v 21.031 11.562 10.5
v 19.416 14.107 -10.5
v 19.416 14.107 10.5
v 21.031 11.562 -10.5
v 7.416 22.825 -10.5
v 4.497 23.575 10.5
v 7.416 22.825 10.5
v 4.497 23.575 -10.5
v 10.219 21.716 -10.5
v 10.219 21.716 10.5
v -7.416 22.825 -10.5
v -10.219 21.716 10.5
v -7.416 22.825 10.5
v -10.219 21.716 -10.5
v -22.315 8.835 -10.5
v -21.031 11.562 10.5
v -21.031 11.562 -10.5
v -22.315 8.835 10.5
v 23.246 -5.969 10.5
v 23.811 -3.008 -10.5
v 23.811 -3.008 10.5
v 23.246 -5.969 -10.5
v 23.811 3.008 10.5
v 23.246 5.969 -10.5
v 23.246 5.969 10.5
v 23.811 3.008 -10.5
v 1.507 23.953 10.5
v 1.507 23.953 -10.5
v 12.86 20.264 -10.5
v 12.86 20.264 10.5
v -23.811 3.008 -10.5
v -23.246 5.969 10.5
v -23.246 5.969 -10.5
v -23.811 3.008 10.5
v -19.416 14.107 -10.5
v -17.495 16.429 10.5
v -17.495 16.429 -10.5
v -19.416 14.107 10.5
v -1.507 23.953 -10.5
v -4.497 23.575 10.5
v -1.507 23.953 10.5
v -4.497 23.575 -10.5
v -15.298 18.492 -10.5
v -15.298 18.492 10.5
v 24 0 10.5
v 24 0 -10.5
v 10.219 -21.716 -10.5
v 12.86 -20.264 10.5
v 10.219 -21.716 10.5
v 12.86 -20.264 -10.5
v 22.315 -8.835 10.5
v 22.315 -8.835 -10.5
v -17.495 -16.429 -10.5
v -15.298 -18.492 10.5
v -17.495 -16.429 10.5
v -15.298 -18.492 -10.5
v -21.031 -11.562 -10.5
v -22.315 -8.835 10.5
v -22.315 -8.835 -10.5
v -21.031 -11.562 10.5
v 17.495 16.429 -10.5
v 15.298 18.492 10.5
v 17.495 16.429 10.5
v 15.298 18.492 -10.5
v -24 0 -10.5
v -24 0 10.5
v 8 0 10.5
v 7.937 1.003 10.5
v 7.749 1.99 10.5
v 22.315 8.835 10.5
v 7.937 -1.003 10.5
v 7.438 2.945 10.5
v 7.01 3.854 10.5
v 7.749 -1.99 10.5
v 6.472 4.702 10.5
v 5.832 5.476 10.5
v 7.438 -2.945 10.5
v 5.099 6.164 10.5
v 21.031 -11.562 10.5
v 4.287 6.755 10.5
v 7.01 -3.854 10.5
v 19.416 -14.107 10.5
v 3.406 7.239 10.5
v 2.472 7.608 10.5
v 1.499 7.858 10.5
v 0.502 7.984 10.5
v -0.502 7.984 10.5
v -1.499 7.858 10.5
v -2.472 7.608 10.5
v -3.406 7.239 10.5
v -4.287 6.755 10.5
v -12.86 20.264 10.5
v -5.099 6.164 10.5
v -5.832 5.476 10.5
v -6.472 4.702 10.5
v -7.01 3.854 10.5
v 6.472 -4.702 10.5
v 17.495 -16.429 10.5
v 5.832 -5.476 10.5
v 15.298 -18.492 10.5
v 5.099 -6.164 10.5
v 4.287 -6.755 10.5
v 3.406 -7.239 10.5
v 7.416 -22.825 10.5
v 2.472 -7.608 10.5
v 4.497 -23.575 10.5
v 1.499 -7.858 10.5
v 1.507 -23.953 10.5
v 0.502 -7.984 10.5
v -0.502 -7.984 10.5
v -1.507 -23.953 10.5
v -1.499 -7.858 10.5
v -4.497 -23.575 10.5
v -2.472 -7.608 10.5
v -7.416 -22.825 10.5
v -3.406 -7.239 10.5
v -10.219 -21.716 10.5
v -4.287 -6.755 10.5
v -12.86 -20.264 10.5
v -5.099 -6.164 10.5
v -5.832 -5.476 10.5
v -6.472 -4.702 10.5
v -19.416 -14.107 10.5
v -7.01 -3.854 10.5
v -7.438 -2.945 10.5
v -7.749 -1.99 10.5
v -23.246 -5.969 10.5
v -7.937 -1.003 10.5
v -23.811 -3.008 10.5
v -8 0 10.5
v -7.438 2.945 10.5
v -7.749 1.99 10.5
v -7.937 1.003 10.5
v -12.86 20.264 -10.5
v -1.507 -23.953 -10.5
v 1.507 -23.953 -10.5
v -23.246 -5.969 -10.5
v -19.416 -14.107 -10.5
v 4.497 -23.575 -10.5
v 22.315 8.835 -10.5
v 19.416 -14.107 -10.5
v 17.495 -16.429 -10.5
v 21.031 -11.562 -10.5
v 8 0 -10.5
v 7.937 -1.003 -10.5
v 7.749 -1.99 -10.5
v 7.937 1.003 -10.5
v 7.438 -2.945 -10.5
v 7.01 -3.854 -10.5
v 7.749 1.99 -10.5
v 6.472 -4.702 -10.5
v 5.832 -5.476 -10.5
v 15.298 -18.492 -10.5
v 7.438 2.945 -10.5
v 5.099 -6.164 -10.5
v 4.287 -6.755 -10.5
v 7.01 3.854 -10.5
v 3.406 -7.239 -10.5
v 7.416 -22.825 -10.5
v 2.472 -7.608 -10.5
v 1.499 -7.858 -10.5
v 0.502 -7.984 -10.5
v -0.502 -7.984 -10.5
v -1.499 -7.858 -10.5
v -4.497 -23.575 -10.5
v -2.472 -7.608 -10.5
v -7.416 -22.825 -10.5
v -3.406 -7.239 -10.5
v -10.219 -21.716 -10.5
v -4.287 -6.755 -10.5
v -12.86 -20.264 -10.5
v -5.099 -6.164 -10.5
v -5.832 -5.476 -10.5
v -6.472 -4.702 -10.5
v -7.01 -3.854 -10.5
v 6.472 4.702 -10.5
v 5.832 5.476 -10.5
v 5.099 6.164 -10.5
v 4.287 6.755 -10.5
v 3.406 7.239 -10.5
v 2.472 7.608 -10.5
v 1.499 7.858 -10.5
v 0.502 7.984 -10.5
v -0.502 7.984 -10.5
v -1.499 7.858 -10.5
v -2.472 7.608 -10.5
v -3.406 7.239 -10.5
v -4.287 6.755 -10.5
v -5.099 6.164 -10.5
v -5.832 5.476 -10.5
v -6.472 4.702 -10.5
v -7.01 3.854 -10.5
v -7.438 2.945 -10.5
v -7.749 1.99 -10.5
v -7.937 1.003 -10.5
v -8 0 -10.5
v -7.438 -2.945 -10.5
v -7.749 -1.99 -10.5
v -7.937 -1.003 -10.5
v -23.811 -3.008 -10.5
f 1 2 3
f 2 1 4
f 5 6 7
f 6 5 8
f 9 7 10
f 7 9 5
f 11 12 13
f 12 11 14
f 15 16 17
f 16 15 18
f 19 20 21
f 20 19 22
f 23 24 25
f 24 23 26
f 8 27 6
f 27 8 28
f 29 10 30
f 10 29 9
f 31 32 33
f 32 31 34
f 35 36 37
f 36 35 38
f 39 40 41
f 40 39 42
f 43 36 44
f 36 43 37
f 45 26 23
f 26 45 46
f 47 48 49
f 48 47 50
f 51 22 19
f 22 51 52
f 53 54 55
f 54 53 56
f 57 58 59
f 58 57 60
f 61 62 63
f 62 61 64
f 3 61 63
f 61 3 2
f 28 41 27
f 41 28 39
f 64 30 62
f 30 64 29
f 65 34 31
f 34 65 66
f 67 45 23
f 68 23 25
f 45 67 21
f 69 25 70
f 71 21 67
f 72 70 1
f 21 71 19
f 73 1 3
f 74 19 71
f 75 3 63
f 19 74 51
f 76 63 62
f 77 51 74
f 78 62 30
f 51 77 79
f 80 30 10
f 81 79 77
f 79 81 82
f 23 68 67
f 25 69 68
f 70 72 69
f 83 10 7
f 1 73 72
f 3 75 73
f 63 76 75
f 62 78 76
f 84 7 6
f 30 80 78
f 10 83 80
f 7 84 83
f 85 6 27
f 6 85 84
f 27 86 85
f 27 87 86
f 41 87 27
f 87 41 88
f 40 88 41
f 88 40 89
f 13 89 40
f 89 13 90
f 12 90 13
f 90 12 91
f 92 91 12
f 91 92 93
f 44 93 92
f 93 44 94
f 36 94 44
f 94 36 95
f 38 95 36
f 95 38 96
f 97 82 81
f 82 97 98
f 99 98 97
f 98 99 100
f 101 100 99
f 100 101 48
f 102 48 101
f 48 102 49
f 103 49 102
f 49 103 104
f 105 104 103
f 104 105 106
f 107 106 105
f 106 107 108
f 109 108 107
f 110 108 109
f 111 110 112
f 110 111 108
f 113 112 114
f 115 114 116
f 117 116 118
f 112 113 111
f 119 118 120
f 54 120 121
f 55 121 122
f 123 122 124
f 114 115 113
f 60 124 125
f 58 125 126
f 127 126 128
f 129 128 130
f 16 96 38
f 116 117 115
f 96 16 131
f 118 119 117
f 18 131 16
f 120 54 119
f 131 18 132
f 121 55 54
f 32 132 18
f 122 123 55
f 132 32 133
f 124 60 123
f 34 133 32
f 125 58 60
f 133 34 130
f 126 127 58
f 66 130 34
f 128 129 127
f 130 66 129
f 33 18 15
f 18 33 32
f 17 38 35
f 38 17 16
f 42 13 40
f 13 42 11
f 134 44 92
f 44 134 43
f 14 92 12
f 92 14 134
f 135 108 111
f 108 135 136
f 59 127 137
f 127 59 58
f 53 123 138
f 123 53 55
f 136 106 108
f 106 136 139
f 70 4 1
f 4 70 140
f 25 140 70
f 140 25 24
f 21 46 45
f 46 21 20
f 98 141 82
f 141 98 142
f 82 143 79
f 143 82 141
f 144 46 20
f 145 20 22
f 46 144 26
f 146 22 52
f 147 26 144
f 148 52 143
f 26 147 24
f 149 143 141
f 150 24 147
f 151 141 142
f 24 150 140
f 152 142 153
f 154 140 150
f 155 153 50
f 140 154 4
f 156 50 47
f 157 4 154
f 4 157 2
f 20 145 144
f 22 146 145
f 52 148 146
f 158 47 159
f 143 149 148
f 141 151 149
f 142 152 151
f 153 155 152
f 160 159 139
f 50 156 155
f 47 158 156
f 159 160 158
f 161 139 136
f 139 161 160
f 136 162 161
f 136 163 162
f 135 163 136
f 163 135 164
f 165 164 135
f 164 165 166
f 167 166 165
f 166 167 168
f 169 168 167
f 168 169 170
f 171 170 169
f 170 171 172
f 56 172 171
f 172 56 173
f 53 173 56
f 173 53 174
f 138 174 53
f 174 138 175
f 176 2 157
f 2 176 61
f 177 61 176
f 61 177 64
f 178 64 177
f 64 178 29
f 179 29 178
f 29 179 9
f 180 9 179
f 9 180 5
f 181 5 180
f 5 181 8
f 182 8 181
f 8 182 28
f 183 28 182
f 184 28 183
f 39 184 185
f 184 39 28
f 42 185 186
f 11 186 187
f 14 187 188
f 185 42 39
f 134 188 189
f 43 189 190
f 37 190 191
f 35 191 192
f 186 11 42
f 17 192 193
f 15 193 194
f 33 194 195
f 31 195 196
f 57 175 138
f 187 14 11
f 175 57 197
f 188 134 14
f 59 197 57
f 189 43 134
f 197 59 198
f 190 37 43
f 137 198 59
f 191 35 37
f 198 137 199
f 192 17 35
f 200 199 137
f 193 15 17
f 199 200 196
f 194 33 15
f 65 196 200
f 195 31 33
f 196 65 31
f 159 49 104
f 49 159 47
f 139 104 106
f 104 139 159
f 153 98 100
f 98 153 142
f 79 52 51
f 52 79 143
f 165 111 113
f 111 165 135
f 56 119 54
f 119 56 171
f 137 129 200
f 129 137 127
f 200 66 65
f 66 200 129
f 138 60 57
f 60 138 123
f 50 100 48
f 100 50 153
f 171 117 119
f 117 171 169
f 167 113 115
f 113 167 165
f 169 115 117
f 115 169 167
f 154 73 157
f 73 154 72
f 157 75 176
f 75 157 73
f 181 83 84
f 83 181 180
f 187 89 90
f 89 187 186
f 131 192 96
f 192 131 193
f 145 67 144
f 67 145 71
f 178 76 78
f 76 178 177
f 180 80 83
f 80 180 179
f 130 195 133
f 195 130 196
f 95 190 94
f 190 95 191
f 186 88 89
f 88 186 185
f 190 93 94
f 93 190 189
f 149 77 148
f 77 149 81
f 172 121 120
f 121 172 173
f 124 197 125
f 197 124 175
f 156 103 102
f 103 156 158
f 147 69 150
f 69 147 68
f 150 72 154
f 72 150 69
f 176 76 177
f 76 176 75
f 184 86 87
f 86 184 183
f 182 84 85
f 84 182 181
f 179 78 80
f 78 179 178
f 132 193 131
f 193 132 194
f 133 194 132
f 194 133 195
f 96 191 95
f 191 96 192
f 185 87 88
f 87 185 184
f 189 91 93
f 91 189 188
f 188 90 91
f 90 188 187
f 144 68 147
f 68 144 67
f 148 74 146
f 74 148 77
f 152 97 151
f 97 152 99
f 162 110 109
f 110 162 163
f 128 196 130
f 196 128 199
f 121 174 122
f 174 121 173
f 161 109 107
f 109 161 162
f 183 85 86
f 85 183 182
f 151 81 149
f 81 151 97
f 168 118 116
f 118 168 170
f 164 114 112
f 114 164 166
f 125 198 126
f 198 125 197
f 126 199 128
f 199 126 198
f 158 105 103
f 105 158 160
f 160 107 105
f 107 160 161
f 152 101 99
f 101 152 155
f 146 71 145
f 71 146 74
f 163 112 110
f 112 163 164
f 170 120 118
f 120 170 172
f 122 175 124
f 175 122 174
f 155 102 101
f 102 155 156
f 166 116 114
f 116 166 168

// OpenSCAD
$fn = 50;


difference() {
	union() {
		translate(v = [0, 0, -10.5000000000]) {
			cylinder(h = 21, r = 24.0000000000);
		}
	}
	union() {
		translate(v = [0, 0, -100.0000000000]) {
			cylinder(h = 200, r = 8);
		}
	}
}
